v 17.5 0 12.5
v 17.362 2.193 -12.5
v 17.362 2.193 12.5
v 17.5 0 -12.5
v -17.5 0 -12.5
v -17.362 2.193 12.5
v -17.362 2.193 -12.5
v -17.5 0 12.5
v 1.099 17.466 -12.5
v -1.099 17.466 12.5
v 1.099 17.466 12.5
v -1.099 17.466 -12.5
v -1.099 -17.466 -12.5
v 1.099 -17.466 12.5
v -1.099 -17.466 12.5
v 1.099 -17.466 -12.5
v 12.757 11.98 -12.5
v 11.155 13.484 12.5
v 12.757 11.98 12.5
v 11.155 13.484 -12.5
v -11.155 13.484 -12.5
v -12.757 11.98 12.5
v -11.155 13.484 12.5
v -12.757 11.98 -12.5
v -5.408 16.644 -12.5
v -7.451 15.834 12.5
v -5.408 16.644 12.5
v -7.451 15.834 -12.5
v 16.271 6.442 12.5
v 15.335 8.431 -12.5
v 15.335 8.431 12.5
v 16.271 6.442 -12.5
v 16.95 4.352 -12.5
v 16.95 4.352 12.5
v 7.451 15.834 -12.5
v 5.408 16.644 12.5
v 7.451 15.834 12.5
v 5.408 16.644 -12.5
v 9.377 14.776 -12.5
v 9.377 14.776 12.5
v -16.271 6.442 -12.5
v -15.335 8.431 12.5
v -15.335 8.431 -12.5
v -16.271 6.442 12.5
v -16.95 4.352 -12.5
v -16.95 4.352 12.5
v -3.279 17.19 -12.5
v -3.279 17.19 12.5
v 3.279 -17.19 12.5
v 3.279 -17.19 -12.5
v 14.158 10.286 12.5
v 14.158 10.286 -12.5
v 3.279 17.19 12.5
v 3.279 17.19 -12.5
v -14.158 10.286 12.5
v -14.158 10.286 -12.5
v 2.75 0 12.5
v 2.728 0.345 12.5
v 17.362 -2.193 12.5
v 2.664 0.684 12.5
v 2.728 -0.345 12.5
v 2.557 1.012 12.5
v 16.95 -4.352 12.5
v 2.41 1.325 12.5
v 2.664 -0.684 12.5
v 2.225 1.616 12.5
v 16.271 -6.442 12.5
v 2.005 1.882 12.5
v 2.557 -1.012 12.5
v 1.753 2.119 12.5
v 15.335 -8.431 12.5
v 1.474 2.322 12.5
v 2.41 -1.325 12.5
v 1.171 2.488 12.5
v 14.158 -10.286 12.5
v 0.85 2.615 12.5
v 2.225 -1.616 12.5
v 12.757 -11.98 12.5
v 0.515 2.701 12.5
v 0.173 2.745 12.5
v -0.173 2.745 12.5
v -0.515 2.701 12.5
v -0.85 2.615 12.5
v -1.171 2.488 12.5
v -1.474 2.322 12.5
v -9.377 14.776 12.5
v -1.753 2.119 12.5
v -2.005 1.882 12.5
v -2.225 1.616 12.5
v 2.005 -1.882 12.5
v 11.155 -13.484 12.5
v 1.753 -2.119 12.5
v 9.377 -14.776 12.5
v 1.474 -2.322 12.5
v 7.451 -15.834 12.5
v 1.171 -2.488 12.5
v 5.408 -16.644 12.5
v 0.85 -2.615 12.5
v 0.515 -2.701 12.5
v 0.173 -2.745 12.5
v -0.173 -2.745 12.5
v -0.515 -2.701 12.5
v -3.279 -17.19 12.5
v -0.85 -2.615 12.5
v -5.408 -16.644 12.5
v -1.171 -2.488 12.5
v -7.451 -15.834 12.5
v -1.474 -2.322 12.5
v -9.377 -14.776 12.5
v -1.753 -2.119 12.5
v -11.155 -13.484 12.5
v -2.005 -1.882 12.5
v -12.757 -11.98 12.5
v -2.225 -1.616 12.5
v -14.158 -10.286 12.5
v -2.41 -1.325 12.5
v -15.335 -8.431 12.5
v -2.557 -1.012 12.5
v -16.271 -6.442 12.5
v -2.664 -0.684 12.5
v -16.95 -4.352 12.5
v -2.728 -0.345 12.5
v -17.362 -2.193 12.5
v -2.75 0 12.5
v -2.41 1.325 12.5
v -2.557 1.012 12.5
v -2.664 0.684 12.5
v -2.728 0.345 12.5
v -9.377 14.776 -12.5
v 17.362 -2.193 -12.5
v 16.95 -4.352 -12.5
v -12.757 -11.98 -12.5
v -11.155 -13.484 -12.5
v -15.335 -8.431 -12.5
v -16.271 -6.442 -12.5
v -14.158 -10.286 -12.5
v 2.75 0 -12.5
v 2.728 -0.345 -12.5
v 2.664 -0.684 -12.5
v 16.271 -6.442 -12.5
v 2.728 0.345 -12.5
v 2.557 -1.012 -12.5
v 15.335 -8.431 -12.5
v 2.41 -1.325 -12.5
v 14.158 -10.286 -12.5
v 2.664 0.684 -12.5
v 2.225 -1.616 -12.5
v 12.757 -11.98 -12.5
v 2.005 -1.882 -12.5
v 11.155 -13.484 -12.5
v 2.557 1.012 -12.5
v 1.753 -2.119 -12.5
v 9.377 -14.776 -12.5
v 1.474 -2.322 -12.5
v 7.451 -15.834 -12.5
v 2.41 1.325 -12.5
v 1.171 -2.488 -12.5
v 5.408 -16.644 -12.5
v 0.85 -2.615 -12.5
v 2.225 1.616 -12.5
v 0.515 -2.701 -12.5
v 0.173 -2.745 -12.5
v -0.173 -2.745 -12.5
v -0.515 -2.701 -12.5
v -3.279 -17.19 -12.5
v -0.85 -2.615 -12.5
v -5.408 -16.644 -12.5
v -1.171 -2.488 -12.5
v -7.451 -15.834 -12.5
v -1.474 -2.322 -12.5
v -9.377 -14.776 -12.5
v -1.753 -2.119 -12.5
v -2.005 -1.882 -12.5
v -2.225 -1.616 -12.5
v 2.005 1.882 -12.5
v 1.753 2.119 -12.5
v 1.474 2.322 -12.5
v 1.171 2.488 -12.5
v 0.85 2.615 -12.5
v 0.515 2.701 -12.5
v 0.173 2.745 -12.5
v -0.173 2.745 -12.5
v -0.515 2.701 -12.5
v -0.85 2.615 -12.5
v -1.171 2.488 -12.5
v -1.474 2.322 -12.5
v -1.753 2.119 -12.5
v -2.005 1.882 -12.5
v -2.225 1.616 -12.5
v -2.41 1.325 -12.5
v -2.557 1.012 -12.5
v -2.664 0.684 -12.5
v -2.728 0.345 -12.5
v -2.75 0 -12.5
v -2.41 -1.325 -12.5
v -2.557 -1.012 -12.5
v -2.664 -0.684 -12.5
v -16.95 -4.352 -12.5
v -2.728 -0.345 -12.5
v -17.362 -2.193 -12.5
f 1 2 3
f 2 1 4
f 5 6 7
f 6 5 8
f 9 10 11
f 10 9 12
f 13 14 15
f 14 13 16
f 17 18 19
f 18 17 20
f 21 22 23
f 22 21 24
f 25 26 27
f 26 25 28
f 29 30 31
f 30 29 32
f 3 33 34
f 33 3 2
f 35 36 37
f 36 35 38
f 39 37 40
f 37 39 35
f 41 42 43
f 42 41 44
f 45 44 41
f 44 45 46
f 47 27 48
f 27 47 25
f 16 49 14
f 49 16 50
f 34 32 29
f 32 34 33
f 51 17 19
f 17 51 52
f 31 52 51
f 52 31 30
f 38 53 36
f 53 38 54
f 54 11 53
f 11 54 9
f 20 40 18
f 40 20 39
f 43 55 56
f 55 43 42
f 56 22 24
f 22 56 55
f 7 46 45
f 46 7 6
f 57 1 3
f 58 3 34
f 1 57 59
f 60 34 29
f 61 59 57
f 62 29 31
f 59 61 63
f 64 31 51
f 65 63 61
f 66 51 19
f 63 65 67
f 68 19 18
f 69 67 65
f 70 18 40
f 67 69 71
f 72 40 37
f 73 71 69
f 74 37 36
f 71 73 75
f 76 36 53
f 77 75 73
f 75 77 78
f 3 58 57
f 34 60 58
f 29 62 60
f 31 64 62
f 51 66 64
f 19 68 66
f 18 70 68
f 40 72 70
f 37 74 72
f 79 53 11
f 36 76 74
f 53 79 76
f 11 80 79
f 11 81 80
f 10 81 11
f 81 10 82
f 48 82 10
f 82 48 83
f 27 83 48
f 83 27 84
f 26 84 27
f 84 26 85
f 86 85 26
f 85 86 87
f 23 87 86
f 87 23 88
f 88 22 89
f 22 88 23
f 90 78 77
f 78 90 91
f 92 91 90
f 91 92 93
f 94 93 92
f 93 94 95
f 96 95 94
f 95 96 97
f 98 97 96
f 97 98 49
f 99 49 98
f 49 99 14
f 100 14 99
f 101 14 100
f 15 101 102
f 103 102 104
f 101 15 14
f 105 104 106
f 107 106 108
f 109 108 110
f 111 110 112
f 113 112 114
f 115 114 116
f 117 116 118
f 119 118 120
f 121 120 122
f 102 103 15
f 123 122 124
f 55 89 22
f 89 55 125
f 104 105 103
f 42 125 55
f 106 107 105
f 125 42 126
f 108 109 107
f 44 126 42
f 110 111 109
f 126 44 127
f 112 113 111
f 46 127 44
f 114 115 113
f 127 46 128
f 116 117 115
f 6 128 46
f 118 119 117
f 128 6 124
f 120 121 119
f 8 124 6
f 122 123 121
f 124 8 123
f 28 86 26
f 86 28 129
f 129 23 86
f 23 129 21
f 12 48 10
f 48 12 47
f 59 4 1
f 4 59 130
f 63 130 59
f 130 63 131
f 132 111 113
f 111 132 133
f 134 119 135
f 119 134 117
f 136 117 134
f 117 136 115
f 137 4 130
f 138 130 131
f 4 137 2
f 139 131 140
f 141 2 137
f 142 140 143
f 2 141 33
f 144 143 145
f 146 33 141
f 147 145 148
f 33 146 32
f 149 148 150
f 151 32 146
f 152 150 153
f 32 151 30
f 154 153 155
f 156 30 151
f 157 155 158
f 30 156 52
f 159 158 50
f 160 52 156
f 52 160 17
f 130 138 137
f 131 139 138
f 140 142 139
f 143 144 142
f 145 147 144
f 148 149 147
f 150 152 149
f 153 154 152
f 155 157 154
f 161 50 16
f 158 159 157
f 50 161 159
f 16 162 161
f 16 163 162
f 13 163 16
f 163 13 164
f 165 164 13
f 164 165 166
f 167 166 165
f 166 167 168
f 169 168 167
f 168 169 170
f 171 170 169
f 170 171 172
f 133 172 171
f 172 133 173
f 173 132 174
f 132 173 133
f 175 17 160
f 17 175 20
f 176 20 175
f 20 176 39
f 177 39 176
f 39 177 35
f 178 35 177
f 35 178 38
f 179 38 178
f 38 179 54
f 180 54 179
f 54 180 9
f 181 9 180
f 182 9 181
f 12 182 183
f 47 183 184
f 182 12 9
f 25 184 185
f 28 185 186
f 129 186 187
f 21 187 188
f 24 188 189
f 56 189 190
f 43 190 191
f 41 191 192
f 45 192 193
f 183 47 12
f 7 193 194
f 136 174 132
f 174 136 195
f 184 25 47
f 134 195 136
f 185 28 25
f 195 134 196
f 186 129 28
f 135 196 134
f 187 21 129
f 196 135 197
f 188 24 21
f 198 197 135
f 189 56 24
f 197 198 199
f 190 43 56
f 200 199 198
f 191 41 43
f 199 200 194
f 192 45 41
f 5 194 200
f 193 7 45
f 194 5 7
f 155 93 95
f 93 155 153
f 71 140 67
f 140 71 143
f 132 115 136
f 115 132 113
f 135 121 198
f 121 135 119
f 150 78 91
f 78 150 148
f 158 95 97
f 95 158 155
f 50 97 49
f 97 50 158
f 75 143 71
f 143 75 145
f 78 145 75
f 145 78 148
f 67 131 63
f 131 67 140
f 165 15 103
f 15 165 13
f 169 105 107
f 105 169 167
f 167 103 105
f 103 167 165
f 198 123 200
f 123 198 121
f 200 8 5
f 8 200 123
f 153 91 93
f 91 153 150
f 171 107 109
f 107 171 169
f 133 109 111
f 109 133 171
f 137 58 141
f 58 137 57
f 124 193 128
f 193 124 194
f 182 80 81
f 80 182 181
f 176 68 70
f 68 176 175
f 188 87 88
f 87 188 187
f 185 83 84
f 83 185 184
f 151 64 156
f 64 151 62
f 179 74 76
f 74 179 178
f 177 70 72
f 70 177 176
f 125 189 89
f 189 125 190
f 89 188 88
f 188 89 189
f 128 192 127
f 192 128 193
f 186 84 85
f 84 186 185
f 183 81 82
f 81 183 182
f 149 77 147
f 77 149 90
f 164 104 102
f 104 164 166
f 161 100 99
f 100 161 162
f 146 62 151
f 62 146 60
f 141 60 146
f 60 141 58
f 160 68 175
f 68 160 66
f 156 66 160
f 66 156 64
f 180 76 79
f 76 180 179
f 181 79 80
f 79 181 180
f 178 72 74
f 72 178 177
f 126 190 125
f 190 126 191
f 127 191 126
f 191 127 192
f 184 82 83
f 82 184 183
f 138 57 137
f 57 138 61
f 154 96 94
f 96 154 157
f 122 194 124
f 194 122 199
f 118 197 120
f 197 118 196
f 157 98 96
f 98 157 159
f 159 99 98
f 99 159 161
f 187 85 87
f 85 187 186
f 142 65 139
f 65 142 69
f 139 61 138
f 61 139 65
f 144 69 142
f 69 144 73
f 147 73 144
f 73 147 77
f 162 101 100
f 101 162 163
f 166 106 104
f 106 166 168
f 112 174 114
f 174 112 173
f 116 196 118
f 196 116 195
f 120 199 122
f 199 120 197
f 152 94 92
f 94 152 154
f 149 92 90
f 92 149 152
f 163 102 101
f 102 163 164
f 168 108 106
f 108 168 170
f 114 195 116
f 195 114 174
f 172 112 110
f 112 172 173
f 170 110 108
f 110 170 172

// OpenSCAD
$fn = 50;


difference() {
	union() {
		translate(v = [0, 0, -12.5000000000]) {
			cylinder(h = 25, r = 17.5000000000);
		}
	}
	union() {
		translate(v = [0, 0, -100.0000000000]) {
			cylinder(h = 200, r = 2.7500000000);
		}
	}
}
